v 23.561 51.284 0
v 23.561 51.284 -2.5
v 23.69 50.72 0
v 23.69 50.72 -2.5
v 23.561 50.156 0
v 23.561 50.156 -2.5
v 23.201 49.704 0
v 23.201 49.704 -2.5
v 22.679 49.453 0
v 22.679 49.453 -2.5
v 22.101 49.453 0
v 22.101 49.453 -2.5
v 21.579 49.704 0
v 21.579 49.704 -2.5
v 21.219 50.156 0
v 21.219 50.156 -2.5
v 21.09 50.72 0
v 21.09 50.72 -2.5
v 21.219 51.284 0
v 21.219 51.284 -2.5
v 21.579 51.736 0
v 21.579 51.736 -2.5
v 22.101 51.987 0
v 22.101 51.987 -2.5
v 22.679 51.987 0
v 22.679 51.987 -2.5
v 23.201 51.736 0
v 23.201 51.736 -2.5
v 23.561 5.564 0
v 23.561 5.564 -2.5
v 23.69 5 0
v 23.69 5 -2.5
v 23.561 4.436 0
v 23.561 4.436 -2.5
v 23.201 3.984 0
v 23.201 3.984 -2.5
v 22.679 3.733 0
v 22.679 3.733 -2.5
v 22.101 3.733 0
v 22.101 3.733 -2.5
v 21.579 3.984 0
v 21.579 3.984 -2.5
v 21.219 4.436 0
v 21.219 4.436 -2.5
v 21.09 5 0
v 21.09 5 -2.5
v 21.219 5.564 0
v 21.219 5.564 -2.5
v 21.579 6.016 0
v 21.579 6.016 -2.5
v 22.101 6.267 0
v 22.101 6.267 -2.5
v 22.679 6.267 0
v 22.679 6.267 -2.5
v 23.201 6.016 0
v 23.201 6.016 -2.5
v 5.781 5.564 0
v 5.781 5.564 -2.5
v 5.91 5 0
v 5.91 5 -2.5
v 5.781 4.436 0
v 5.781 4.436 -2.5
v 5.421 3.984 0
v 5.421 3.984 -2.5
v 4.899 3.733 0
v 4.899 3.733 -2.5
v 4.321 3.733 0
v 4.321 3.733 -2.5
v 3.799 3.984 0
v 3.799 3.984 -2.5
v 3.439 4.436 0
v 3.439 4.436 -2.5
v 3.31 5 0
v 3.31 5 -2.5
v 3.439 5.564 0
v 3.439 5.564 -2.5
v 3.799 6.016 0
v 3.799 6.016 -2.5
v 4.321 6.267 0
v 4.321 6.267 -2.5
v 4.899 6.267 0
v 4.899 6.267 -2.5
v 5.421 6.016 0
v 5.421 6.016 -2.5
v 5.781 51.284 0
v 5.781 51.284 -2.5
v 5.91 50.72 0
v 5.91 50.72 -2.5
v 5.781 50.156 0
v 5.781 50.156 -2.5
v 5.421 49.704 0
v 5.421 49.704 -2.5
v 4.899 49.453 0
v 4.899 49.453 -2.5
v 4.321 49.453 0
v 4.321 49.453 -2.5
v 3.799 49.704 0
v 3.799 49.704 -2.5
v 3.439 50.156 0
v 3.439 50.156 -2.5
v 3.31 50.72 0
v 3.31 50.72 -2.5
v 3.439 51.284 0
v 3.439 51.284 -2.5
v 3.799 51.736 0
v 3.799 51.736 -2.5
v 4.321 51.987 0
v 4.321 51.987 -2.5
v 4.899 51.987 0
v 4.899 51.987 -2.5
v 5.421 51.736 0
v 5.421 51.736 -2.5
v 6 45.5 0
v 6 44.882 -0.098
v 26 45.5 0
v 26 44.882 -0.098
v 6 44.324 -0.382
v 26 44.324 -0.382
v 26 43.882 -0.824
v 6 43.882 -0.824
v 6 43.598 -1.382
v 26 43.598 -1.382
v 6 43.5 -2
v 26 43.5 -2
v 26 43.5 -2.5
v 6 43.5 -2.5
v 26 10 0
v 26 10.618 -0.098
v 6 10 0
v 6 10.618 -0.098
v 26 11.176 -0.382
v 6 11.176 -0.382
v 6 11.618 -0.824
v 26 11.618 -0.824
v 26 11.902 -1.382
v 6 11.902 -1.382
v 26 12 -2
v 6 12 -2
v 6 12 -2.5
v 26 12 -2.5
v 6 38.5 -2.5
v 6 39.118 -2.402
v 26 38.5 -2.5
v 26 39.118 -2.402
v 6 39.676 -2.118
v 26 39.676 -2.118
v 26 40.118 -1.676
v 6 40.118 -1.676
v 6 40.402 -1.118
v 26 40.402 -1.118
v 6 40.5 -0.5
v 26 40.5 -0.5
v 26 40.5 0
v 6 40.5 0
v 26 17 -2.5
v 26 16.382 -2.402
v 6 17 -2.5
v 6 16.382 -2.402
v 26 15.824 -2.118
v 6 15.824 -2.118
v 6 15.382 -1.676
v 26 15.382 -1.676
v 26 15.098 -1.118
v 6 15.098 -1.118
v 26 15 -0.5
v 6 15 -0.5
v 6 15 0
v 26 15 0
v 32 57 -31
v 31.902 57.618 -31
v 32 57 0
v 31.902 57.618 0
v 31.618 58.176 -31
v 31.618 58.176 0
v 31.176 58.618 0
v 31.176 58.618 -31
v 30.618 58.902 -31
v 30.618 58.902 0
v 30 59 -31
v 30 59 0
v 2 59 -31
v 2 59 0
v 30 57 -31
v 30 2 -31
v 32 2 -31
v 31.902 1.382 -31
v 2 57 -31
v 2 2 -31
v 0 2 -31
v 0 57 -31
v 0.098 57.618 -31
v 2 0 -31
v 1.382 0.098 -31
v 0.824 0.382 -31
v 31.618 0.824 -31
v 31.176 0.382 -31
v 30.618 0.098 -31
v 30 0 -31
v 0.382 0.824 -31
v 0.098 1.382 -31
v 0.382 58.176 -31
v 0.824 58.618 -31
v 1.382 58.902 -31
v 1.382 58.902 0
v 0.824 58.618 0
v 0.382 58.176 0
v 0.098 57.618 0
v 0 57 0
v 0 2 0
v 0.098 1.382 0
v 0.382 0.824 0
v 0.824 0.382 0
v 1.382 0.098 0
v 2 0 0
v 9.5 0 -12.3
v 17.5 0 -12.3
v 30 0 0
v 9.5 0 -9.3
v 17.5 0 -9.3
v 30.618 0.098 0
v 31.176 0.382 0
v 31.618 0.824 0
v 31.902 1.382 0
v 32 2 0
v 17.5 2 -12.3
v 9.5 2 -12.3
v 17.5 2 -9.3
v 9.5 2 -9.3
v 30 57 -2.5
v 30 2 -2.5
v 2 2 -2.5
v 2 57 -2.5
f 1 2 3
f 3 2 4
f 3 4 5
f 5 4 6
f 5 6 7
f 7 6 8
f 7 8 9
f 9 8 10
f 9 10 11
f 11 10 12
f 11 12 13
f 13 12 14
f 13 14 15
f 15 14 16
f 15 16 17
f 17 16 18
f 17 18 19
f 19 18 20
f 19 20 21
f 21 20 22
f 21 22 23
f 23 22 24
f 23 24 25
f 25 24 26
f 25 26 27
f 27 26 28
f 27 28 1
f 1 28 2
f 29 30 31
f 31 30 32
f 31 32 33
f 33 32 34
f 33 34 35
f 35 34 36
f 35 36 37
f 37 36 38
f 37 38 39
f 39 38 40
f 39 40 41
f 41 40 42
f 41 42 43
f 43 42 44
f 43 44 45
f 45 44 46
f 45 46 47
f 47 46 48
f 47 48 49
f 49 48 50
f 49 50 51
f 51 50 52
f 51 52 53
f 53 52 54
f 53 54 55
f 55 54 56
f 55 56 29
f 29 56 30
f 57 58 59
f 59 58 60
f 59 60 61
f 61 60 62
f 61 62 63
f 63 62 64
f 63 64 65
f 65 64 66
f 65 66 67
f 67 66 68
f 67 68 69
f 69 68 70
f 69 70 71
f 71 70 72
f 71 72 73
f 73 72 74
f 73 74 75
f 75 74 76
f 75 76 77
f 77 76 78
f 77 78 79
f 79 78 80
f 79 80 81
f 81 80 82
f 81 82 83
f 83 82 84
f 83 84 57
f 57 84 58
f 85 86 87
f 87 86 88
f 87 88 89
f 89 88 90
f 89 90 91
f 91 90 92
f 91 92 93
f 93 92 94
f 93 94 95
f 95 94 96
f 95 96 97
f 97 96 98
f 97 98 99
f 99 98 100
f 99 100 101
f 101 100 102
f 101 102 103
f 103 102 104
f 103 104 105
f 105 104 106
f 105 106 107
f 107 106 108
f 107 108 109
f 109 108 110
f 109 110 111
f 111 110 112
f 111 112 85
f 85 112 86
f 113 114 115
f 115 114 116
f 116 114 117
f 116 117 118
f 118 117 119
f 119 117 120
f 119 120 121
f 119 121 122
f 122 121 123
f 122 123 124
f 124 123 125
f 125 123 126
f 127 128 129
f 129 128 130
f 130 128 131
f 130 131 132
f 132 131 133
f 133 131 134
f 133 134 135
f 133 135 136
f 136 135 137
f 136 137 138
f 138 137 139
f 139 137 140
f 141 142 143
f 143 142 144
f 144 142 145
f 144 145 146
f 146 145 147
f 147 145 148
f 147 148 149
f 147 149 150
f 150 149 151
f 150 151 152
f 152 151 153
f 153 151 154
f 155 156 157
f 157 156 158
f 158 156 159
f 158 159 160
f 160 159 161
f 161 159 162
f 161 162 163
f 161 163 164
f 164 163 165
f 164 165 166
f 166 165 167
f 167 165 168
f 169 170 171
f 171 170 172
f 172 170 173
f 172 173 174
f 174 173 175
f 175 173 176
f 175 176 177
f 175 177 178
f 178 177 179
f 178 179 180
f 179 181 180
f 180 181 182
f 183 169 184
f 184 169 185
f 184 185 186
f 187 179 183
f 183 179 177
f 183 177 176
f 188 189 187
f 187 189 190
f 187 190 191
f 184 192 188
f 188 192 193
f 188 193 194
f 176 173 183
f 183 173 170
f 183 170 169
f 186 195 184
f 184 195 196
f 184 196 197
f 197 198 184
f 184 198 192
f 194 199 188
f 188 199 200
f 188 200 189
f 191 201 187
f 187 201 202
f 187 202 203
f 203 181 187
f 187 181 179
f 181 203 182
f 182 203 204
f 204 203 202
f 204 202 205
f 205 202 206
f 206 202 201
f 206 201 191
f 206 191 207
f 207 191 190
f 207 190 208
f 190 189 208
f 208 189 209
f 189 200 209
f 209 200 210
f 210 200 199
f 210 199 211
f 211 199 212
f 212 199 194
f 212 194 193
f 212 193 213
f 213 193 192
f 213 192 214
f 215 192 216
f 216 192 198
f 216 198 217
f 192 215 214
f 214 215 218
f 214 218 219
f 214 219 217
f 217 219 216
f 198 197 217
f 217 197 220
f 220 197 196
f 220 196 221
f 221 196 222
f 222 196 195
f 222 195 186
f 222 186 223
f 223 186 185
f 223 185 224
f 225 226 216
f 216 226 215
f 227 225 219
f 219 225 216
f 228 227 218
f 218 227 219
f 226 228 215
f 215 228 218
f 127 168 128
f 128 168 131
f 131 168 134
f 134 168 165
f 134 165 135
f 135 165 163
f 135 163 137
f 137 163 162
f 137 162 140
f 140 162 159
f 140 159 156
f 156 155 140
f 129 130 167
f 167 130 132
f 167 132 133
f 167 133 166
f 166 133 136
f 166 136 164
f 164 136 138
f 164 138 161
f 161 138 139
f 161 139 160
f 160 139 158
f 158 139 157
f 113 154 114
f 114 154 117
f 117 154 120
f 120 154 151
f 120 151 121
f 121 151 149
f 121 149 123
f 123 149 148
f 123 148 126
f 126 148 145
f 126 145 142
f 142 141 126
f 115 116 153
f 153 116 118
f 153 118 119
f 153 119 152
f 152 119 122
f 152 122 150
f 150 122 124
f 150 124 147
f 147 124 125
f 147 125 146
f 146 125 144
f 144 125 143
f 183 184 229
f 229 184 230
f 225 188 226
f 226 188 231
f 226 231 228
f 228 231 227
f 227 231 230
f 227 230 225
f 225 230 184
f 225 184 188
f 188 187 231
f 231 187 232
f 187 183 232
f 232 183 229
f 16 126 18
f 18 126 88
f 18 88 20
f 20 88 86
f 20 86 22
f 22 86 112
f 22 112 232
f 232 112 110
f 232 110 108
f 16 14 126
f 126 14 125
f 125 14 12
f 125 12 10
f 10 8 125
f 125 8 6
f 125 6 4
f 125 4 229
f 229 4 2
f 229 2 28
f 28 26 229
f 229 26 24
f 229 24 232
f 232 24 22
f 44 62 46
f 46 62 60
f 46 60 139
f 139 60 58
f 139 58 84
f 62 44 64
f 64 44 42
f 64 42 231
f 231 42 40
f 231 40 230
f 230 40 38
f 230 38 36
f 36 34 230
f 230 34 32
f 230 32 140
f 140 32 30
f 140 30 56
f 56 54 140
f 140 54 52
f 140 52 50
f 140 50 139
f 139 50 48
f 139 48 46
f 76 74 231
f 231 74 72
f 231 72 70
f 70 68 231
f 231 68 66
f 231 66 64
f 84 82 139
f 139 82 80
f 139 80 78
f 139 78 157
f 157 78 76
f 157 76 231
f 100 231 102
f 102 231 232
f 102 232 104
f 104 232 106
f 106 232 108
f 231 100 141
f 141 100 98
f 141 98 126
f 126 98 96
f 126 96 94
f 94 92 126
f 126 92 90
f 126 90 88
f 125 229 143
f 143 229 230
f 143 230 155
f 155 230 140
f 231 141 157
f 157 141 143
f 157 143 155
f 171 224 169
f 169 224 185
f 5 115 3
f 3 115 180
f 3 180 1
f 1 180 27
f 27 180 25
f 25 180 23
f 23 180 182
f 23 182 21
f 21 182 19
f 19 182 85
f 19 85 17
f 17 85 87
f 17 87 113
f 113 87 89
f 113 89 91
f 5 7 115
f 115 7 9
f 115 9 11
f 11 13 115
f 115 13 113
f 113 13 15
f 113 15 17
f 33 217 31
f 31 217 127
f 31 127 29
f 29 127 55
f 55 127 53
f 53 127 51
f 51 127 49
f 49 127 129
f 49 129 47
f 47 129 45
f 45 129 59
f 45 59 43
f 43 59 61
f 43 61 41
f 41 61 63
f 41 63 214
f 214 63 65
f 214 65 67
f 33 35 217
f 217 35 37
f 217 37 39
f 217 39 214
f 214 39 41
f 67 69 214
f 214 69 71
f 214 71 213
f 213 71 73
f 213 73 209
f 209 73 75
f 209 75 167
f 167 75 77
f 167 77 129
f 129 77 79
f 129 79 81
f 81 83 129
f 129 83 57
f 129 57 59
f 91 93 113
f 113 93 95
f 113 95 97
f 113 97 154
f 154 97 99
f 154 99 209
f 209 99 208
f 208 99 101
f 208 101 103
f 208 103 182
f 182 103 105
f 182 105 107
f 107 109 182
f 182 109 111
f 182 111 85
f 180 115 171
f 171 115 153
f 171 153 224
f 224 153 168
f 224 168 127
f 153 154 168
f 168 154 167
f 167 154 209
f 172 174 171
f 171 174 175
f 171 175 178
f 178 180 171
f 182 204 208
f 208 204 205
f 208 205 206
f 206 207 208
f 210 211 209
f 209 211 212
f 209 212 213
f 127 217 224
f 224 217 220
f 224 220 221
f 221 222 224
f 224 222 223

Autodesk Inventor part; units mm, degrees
ref_plane "YZ Plane" through (0, 0, 0) normal (1, 0, 0) x (0, 1, 0)
ref_plane "XZ Plane" through (0, 0, 0) normal (0, 1, 0) x (-1, 0, 0)
ref_plane "XY Plane" through (0, 0, 0) normal (0, 0, 1) x (1, 0, 0)
sketch "Skizze1" plane through (0, 0, 0) normal (0, 0, 1) x (1, 0, 0)
  line L0 (0, 0) -> (32, 0)
  line L1 (32, 0) -> (32, 59)
  line L2 (32, 59) -> (0, 59)
  line L3 (0, 59) -> (0, 0)
  dimension "d0" = 32
  dimension "d1" = 59
extrude "Extrusion1" add sketch "Skizze1" against normal blind 31
sketch "Skizze2" plane through (0, 0, -31) normal (0, 0, -1) x (-1, 0, 0)
  line L0 (-2, 57) -> (-30, 57)
  line L1 (-30, 57) -> (-30, 2)
  line L2 (-30, 2) -> (-2, 2)
  line L3 (-2, 2) -> (-2, 57)
  line L4 (0, 59) -> (-32, 59) construction
  line L5 (-32, 59) -> (-32, 0) construction
  point P0 (0, 0)
  dimension "d4" = 2
  dimension "d5" = 2
  dimension "d6" = 2
  dimension "d7" = 2
extrude "Extrusion2" cut sketch "Skizze2" against normal blind 28.5
sketch "Skizze8" plane through (0, 0, -2.5) normal (0, 0, -1) x (-1, 0, 0)
  line L0 (-6, 12) -> (-26, 12)
  line L1 (-26, 12) -> (-26, 15)
  line L2 (-26, 15) -> (-6, 15)
  line L3 (-6, 15) -> (-6, 12)
  line L4 (-2, 2) -> (-30, 2) construction
  circle A0 centre (-4.61, 4.57) radius 3 construction
  line L5 (-6, 43.5) -> (-26, 43.5)
  line L6 (-26, 43.5) -> (-26, 40.5)
  line L7 (-26, 40.5) -> (-6, 40.5)
  line L8 (-6, 40.5) -> (-6, 43.5)
  circle A1 centre (-4.61, 50.29) radius 3 construction
  line L9 (-30, 57) -> (-2, 57) projected
  point P0 (0, 0)
  point P1 (-16, 12)
  point P2 (-16, 2)
  point P3 (-16, 2)
  point P4 (-16, 40.5)
  dimension "d43" = 3
  dimension "d44" = 20
  dimension "d46" = 3
  dimension "d47" = 20
  dimension "d71" = 10
  dimension "d72" = 13.5
extrude "Extrusion5" cut sketch "Skizze8" against normal through all
sketch "Skizze9" plane through (0, 0, 0) normal (0, -1, 0) x (1, 0, 0)
  line L0 (2, -5.5) -> (3.0624, -5.5) construction
  line L1 (17.5, -12.3) -> (9.5, -12.3)
  line L2 (9.5, -12.3) -> (9.5, -9.3)
  line L3 (9.5, -9.3) -> (17.5, -9.3)
  line L4 (17.5, -9.3) -> (17.5, -12.3)
  line L5 (0, 0) -> (32, 0) construction
  line L6 (2, -2.5) -> (30, -2.5) projected
  line L7 (2, -31) -> (2, -2.5) projected
  point P0 (13.5, -9.3)
  point P1 (16, 0)
  point P2 (6.1576, -2)
  point P3 (20.8424, -2)
  point P4 (30, -2.5)
  dimension "d54" = 8
  dimension "d55" = 3
  dimension "d70" = 6.8
  dimension "d81" = 7.5
extrude "Extrusion6" cut sketch "Skizze9" against normal up to surface (2 mm away)
fillet "Rundung1" radius 2 4 edges at (32, 0, -15.5) (0, 0, -15.5) (0, 59, -15.5) (32, 59, -15.5)
fillet "Rundung2" radius 2 2 edges at (16, 15, -2.5) (16, 40.5, -2.5)
fillet "Rundung3" radius 2 2 edges at (16, 12, 0) (16, 43.5, 0)
sketch "Skizze11" plane through (0, 0, -2.5) normal (0, 0, -1) x (-1, 0, 0)
  point P0 (0, 0)
  point P1 (-22.39, 5)
  point P2 (-22.39, 5)
  point P3 (-4.61, 5)
  point P4 (-4.61, 5)
  point P5 (-22.39, 50.72)
  point P6 (-22.39, 50.72)
  point P7 (-4.61, 50.72)
  dimension "d82" = 4.61
  dimension "d83" = 5
  dimension "d84" = 45.72
  dimension "d85" = 17.78
hole "Bohrung4" at (22.39, 5, -2.5) at (4.61, 5, -2.5) at (22.39, 50.72, -2.5) at (4.61, 50.72, -2.5) direction (0, 0, 1) diameter 2.6 end through all
properties part number "bottom"
